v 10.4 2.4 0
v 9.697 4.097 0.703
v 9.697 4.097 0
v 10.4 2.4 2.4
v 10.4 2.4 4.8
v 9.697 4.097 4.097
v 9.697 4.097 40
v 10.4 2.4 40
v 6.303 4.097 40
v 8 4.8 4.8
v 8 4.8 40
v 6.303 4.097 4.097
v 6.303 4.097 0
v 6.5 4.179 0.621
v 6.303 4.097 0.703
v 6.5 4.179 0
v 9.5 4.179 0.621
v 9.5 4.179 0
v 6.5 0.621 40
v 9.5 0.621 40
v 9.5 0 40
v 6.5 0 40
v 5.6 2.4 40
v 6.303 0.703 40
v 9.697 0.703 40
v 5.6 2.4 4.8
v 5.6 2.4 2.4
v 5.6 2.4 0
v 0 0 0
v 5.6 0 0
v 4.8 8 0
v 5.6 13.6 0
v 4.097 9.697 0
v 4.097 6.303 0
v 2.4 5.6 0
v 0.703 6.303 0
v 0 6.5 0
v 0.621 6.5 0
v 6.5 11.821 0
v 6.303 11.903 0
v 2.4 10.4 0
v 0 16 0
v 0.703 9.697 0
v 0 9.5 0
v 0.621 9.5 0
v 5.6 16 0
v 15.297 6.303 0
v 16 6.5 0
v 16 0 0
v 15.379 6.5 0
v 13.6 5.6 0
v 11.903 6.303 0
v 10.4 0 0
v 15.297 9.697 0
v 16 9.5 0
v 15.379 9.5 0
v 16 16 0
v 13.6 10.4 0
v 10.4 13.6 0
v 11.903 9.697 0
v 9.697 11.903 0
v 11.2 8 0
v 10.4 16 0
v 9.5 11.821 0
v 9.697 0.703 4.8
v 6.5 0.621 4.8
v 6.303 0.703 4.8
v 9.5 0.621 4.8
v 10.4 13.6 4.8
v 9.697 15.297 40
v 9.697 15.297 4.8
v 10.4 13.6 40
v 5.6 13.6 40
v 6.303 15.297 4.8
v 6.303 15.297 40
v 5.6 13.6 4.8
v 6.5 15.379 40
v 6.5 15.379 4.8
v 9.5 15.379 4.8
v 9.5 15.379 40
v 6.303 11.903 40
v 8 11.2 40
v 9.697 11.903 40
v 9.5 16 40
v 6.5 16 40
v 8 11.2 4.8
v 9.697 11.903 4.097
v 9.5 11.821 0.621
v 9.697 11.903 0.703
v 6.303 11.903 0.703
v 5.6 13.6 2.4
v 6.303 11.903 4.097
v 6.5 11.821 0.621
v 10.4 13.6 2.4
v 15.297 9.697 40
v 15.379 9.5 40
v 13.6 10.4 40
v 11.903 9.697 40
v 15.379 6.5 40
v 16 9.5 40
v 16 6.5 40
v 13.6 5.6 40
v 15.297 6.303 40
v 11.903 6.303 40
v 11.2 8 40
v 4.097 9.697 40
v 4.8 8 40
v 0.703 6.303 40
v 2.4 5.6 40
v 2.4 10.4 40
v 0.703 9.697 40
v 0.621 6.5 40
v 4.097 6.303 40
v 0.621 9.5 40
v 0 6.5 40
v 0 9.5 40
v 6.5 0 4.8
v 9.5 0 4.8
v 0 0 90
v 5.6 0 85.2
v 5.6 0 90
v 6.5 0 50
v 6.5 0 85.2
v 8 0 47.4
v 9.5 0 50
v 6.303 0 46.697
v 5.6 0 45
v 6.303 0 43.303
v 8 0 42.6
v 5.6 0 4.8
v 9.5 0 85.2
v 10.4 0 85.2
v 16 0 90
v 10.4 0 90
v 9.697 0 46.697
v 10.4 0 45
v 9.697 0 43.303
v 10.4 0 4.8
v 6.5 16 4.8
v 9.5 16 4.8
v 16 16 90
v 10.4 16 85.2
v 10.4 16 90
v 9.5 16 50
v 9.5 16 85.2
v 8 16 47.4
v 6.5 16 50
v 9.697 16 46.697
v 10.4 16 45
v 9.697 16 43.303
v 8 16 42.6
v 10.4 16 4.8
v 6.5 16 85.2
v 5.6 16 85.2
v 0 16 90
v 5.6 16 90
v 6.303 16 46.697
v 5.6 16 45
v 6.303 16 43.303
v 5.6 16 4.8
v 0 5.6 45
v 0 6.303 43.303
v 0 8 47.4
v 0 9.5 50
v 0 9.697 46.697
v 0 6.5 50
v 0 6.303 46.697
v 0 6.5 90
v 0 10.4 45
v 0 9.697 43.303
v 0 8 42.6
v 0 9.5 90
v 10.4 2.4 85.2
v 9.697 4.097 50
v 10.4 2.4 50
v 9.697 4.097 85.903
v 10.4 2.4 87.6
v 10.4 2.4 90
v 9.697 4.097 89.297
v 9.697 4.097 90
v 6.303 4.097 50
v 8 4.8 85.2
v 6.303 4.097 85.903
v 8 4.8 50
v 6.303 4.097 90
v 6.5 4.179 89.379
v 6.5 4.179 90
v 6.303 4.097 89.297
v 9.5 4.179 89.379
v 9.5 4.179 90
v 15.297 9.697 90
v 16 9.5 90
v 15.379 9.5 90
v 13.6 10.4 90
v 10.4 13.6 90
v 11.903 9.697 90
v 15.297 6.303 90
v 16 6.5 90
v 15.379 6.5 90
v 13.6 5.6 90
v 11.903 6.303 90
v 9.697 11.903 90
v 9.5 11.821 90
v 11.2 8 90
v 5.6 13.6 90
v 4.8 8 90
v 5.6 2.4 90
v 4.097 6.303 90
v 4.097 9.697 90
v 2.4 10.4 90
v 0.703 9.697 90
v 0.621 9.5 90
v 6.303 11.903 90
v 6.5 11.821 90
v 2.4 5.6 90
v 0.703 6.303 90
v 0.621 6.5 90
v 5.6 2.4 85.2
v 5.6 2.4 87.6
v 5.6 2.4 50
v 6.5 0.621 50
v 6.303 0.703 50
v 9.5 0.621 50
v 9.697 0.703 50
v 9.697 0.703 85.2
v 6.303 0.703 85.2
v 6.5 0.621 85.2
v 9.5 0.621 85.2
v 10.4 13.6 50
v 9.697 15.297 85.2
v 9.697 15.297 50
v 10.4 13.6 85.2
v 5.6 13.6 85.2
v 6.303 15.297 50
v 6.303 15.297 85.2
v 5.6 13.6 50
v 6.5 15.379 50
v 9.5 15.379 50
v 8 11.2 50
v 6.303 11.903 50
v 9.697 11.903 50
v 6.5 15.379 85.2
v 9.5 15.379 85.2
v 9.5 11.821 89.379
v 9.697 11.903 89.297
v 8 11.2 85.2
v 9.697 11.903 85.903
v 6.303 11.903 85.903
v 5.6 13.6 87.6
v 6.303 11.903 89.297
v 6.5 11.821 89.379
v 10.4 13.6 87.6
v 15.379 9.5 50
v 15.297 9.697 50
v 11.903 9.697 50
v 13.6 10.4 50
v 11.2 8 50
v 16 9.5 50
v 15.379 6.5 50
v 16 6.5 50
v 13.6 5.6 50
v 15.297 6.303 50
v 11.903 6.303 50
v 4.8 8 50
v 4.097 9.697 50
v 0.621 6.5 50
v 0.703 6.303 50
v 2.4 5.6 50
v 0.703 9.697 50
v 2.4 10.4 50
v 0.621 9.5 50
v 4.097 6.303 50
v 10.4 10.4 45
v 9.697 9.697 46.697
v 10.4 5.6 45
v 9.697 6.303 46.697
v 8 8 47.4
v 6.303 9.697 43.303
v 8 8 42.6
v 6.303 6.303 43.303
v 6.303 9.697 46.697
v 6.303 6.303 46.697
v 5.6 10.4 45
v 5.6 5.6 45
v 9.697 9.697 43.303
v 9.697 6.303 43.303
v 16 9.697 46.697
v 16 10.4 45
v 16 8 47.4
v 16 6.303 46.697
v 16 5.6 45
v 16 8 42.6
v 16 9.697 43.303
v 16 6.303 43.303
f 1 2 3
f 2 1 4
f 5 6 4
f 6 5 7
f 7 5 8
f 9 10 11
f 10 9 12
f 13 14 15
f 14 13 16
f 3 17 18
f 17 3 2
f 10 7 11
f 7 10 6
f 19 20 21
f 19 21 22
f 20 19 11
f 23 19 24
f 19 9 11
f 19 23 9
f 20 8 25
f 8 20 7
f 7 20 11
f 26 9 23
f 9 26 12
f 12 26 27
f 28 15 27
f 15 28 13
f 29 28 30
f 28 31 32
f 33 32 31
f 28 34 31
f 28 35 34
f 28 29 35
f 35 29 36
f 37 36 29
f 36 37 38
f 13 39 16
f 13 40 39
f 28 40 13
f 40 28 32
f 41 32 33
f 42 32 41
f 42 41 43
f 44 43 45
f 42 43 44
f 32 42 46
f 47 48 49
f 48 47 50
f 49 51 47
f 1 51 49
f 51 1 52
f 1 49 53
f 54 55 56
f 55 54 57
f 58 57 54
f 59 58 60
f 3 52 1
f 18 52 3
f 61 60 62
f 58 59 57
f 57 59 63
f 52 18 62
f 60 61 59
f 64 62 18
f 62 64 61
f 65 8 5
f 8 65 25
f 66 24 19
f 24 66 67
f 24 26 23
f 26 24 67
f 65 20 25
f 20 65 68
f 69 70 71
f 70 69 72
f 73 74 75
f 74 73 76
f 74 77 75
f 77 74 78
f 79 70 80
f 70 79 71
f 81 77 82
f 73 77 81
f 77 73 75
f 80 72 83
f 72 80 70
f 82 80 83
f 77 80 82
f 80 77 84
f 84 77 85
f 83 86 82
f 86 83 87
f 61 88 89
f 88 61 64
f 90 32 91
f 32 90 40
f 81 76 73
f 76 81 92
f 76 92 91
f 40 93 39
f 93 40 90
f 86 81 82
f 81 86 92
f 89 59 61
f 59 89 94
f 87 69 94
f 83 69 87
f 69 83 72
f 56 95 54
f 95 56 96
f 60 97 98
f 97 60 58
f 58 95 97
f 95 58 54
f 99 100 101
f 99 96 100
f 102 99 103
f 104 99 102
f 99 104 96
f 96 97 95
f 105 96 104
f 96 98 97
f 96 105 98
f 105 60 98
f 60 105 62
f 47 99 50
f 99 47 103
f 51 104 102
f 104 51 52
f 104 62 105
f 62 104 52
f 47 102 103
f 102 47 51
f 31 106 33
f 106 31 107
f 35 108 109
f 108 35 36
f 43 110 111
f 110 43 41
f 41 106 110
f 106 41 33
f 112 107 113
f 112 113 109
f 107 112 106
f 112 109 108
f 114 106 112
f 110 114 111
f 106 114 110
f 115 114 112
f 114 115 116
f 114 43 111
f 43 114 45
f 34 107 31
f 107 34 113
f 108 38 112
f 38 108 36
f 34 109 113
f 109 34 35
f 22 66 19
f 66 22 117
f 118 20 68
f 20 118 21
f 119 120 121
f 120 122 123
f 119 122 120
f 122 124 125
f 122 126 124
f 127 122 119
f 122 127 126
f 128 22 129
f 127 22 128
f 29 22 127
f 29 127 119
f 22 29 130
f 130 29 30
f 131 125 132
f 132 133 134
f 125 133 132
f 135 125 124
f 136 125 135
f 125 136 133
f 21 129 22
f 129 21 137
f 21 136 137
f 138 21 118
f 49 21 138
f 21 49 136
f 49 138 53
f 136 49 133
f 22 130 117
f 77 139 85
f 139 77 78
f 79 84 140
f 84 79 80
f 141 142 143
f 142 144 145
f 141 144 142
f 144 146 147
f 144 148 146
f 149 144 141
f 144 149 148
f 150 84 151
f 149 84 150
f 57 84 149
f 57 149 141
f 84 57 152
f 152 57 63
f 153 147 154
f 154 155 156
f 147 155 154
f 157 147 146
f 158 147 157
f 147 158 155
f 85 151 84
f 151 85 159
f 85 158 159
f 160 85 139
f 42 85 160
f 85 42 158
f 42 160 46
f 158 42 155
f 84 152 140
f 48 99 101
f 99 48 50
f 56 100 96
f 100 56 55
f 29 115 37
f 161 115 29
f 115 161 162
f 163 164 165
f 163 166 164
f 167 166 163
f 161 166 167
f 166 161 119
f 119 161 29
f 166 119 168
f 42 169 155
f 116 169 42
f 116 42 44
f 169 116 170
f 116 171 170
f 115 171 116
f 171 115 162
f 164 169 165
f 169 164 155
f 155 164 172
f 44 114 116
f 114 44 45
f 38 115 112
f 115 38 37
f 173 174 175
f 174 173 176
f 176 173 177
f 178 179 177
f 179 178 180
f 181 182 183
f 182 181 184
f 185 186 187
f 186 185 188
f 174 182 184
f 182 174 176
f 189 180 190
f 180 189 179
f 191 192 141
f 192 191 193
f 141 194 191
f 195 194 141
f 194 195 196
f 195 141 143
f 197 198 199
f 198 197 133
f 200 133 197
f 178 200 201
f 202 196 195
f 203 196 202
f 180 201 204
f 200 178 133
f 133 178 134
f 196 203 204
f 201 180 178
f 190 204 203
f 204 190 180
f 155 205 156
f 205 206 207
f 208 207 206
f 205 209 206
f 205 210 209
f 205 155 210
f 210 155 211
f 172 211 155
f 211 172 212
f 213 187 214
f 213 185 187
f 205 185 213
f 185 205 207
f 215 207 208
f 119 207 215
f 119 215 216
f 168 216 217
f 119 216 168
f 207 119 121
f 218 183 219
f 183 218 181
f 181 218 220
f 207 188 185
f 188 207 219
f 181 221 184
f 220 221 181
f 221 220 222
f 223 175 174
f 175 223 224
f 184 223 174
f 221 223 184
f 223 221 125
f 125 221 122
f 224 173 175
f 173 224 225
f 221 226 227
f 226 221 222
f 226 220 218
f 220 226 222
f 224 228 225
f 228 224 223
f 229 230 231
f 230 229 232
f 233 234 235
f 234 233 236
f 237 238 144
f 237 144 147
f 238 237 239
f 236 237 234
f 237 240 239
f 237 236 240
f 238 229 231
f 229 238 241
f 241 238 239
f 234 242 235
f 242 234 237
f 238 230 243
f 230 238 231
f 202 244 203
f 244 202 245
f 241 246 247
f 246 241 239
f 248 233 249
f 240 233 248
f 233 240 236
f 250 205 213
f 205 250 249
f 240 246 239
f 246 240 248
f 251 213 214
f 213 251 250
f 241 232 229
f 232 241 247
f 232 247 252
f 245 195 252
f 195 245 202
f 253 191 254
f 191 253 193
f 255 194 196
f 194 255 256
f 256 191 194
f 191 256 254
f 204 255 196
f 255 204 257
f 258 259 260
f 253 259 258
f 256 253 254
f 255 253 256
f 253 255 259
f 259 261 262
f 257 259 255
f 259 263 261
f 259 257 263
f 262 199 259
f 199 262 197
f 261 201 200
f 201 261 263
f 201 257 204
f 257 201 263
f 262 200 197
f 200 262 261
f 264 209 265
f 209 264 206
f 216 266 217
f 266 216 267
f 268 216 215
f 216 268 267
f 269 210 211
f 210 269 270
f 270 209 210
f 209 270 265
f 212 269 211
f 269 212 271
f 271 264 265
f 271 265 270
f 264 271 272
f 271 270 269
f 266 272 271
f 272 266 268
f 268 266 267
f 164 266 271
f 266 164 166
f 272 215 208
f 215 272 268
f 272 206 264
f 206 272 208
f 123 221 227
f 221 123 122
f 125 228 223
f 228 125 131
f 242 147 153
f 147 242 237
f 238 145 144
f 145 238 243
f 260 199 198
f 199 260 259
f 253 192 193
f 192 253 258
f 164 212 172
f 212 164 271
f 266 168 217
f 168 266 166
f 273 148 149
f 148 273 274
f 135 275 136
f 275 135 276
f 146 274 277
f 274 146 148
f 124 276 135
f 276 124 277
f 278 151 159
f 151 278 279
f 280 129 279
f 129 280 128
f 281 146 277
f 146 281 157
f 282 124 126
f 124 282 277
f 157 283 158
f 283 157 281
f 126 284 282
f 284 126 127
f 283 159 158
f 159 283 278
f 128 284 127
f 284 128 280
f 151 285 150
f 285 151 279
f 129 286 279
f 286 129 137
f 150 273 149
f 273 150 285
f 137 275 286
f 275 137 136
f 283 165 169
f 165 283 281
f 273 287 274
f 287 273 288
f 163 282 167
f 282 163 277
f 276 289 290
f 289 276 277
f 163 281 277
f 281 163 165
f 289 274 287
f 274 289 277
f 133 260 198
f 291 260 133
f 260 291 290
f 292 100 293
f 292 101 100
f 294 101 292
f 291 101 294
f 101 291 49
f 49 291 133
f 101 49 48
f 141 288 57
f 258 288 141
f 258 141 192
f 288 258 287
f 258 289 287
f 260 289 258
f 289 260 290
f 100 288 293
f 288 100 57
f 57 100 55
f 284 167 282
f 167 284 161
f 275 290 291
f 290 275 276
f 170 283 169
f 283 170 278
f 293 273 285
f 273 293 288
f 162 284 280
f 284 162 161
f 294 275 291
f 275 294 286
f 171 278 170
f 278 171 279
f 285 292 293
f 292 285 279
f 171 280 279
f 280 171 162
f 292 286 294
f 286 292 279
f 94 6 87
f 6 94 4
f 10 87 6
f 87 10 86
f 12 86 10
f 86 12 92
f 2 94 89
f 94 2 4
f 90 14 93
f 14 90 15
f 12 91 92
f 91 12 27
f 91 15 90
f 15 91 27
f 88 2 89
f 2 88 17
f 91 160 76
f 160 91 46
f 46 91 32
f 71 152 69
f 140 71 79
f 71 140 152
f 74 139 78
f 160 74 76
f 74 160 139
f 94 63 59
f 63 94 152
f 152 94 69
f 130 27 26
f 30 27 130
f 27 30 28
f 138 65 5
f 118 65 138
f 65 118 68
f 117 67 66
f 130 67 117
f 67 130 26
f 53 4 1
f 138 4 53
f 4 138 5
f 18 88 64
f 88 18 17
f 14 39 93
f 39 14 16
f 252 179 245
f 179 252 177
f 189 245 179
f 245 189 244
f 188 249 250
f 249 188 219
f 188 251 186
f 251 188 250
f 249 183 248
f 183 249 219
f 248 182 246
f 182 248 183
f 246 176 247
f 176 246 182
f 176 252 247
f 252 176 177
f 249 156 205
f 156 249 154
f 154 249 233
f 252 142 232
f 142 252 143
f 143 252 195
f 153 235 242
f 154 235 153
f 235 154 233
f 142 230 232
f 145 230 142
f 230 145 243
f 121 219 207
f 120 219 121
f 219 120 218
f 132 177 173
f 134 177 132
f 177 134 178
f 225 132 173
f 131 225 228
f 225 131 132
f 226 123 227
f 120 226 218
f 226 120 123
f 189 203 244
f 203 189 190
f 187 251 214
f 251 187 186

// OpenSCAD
/**
 * Create a Fischertechnik compatible building block with hole for axis.
 *
 * @author Brian Schroeder
 * @since 21.04.2020
 */

/* [Block length] */
// Building block length in millimeters
BlockLength=90; // [30, 60, 90]

/* [Has Hole in center] */
// Building block has holes for 4mm axis in the center
HasHole=true; // [false, true]

/*
 * Create the Fischertechnik compatible building block with length passed by the argument.
 *
 * @param ftiBlockLength block length in millimeters (default is 90)
 * @param ftiHasHole block has hole for 4mm axis in the center if true (default is true)
 */
module ftiBuildingBlock15x15(ftiBlockLength=90, ftiHasHole=true) {

    difference() {
        dFti=4 + .8; // axis diameter 4mm + some space around
        dBlock=15 + 1; // block (max) diameter + some more around (adjust to Your printer)
        gFtiW=3; // with of gap
        gFtiD=2; // depth of gap
        cube([dBlock, dBlock, ftiBlockLength]);
        if (ftiHasHole) {
            wAroundHole=5; // keep 5mm around hole
            lAxis=ftiBlockLength/2 - wAroundHole;

            // axis before hole
            translate([dBlock/2,dFti/2,0])cylinder(h=lAxis, d=dFti);
            translate([dBlock/2,dBlock-dFti/2,0])cylinder(h=lAxis, d=dFti);
            translate([dBlock-dFti/2,dBlock/2,0])cylinder(h=lAxis, d=dFti);
            translate([dFti/2,dBlock/2,0])cylinder(h=lAxis, d=dFti);
            // space before hole
            translate([dBlock/2-gFtiW/2,0,0])cube([gFtiW, gFtiD, lAxis]);
            translate([dBlock/2-gFtiW/2,dBlock-gFtiD,0])cube([gFtiW, gFtiD, lAxis]);
            translate([dBlock-gFtiW/2,dBlock/2-gFtiW/2,0])cube([gFtiD, gFtiW, lAxis]);
            translate([0,dBlock/2-gFtiW/2,0])cube([gFtiD, gFtiW, lAxis]);

            // axis after hole
            translate([dBlock/2,dFti/2,ftiBlockLength - lAxis])cylinder(h=lAxis, d=dFti);
            translate([dBlock/2,dBlock-dFti/2,ftiBlockLength - lAxis])cylinder(h=lAxis, d=dFti);
            translate([dBlock-dFti/2,dBlock/2,ftiBlockLength -  lAxis])cylinder(h=lAxis, d=dFti);
            translate([dFti/2,dBlock/2,ftiBlockLength - lAxis])cylinder(h=lAxis, d=dFti);
            // space after hole
            translate([dBlock/2-gFtiW/2,0,ftiBlockLength - lAxis])cube([gFtiW, gFtiD, lAxis]);
            translate([dBlock/2-gFtiW/2,dBlock-gFtiD,ftiBlockLength - lAxis])cube([gFtiW, gFtiD, lAxis]);
            translate([dBlock-gFtiW/2,dBlock/2-gFtiW/2,ftiBlockLength - lAxis])cube([gFtiD, gFtiW, lAxis]);
            translate([0,dBlock/2-gFtiW/2,ftiBlockLength - lAxis])cube([gFtiD, gFtiW, lAxis]);
        } else {
            // axis
            translate([dBlock/2,dFti/2,0])cylinder(h=ftiBlockLength, d=dFti);
            translate([dBlock/2,dBlock-dFti/2,0])cylinder(h=ftiBlockLength, d=dFti);
            translate([dBlock-dFti/2,dBlock/2,0])cylinder(h=ftiBlockLength, d=dFti);
            translate([dFti/2,dBlock/2,0])cylinder(h=ftiBlockLength, d=dFti);
            // space
            translate([dBlock/2-gFtiW/2,0,0])cube([gFtiW, gFtiD, ftiBlockLength]);
            translate([dBlock/2-gFtiW/2,dBlock-gFtiD,0])cube([gFtiW, gFtiD, ftiBlockLength]);
            translate([dBlock-gFtiW/2,dBlock/2-gFtiW/2,0])cube([gFtiD, gFtiW, ftiBlockLength]);
            translate([0,dBlock/2-gFtiW/2,0])cube([gFtiD, gFtiW, ftiBlockLength]);
        }
        // orthoganal axis at end
        translate([dBlock/2, dBlock, dFti/2])rotate([90, 0, 0])cylinder(h=dBlock, d=dFti);
        translate([dBlock/2-dFti/2, dBlock-dFti/2, 0])cube([dFti, dFti, dFti]);
        translate([dBlock/2-dFti/2, 0-dFti/2, 0])cube([dFti, dFti, dFti]);
        translate([dBlock/2+gFtiW/2, 0, -gFtiD/2])rotate([270, 180, 0])cube([gFtiW, gFtiD, dBlock]);
        // orthoganal axis at other end
        translate([dBlock/2, dBlock, ftiBlockLength-dFti/2])rotate([90, 0, 0])cylinder(h=dBlock, d=dFti);
        translate([dBlock/2-dFti/2, dBlock-dFti/2, ftiBlockLength-dFti])cube([dFti, dFti, dFti]);
        translate([dBlock/2-dFti/2, 0-dFti/2, ftiBlockLength-dFti])cube([dFti, dFti, dFti]);
        translate([dBlock/2+gFtiW/2, 0, ftiBlockLength-gFtiD/2])rotate([270, 180, 0])cube([gFtiW, gFtiD, dBlock]);
        // hole
        if (ftiHasHole) {
            translate([dBlock/2, dBlock, ftiBlockLength/2])rotate([90, 0, 0])cylinder(h=dBlock, d=dFti);
            translate([0, dBlock/2, ftiBlockLength/2])rotate([90, 0, 90])cylinder(h=dBlock, d=dFti);
        }
    }
}

ftiBuildingBlock15x15(BlockLength, HasHole);
